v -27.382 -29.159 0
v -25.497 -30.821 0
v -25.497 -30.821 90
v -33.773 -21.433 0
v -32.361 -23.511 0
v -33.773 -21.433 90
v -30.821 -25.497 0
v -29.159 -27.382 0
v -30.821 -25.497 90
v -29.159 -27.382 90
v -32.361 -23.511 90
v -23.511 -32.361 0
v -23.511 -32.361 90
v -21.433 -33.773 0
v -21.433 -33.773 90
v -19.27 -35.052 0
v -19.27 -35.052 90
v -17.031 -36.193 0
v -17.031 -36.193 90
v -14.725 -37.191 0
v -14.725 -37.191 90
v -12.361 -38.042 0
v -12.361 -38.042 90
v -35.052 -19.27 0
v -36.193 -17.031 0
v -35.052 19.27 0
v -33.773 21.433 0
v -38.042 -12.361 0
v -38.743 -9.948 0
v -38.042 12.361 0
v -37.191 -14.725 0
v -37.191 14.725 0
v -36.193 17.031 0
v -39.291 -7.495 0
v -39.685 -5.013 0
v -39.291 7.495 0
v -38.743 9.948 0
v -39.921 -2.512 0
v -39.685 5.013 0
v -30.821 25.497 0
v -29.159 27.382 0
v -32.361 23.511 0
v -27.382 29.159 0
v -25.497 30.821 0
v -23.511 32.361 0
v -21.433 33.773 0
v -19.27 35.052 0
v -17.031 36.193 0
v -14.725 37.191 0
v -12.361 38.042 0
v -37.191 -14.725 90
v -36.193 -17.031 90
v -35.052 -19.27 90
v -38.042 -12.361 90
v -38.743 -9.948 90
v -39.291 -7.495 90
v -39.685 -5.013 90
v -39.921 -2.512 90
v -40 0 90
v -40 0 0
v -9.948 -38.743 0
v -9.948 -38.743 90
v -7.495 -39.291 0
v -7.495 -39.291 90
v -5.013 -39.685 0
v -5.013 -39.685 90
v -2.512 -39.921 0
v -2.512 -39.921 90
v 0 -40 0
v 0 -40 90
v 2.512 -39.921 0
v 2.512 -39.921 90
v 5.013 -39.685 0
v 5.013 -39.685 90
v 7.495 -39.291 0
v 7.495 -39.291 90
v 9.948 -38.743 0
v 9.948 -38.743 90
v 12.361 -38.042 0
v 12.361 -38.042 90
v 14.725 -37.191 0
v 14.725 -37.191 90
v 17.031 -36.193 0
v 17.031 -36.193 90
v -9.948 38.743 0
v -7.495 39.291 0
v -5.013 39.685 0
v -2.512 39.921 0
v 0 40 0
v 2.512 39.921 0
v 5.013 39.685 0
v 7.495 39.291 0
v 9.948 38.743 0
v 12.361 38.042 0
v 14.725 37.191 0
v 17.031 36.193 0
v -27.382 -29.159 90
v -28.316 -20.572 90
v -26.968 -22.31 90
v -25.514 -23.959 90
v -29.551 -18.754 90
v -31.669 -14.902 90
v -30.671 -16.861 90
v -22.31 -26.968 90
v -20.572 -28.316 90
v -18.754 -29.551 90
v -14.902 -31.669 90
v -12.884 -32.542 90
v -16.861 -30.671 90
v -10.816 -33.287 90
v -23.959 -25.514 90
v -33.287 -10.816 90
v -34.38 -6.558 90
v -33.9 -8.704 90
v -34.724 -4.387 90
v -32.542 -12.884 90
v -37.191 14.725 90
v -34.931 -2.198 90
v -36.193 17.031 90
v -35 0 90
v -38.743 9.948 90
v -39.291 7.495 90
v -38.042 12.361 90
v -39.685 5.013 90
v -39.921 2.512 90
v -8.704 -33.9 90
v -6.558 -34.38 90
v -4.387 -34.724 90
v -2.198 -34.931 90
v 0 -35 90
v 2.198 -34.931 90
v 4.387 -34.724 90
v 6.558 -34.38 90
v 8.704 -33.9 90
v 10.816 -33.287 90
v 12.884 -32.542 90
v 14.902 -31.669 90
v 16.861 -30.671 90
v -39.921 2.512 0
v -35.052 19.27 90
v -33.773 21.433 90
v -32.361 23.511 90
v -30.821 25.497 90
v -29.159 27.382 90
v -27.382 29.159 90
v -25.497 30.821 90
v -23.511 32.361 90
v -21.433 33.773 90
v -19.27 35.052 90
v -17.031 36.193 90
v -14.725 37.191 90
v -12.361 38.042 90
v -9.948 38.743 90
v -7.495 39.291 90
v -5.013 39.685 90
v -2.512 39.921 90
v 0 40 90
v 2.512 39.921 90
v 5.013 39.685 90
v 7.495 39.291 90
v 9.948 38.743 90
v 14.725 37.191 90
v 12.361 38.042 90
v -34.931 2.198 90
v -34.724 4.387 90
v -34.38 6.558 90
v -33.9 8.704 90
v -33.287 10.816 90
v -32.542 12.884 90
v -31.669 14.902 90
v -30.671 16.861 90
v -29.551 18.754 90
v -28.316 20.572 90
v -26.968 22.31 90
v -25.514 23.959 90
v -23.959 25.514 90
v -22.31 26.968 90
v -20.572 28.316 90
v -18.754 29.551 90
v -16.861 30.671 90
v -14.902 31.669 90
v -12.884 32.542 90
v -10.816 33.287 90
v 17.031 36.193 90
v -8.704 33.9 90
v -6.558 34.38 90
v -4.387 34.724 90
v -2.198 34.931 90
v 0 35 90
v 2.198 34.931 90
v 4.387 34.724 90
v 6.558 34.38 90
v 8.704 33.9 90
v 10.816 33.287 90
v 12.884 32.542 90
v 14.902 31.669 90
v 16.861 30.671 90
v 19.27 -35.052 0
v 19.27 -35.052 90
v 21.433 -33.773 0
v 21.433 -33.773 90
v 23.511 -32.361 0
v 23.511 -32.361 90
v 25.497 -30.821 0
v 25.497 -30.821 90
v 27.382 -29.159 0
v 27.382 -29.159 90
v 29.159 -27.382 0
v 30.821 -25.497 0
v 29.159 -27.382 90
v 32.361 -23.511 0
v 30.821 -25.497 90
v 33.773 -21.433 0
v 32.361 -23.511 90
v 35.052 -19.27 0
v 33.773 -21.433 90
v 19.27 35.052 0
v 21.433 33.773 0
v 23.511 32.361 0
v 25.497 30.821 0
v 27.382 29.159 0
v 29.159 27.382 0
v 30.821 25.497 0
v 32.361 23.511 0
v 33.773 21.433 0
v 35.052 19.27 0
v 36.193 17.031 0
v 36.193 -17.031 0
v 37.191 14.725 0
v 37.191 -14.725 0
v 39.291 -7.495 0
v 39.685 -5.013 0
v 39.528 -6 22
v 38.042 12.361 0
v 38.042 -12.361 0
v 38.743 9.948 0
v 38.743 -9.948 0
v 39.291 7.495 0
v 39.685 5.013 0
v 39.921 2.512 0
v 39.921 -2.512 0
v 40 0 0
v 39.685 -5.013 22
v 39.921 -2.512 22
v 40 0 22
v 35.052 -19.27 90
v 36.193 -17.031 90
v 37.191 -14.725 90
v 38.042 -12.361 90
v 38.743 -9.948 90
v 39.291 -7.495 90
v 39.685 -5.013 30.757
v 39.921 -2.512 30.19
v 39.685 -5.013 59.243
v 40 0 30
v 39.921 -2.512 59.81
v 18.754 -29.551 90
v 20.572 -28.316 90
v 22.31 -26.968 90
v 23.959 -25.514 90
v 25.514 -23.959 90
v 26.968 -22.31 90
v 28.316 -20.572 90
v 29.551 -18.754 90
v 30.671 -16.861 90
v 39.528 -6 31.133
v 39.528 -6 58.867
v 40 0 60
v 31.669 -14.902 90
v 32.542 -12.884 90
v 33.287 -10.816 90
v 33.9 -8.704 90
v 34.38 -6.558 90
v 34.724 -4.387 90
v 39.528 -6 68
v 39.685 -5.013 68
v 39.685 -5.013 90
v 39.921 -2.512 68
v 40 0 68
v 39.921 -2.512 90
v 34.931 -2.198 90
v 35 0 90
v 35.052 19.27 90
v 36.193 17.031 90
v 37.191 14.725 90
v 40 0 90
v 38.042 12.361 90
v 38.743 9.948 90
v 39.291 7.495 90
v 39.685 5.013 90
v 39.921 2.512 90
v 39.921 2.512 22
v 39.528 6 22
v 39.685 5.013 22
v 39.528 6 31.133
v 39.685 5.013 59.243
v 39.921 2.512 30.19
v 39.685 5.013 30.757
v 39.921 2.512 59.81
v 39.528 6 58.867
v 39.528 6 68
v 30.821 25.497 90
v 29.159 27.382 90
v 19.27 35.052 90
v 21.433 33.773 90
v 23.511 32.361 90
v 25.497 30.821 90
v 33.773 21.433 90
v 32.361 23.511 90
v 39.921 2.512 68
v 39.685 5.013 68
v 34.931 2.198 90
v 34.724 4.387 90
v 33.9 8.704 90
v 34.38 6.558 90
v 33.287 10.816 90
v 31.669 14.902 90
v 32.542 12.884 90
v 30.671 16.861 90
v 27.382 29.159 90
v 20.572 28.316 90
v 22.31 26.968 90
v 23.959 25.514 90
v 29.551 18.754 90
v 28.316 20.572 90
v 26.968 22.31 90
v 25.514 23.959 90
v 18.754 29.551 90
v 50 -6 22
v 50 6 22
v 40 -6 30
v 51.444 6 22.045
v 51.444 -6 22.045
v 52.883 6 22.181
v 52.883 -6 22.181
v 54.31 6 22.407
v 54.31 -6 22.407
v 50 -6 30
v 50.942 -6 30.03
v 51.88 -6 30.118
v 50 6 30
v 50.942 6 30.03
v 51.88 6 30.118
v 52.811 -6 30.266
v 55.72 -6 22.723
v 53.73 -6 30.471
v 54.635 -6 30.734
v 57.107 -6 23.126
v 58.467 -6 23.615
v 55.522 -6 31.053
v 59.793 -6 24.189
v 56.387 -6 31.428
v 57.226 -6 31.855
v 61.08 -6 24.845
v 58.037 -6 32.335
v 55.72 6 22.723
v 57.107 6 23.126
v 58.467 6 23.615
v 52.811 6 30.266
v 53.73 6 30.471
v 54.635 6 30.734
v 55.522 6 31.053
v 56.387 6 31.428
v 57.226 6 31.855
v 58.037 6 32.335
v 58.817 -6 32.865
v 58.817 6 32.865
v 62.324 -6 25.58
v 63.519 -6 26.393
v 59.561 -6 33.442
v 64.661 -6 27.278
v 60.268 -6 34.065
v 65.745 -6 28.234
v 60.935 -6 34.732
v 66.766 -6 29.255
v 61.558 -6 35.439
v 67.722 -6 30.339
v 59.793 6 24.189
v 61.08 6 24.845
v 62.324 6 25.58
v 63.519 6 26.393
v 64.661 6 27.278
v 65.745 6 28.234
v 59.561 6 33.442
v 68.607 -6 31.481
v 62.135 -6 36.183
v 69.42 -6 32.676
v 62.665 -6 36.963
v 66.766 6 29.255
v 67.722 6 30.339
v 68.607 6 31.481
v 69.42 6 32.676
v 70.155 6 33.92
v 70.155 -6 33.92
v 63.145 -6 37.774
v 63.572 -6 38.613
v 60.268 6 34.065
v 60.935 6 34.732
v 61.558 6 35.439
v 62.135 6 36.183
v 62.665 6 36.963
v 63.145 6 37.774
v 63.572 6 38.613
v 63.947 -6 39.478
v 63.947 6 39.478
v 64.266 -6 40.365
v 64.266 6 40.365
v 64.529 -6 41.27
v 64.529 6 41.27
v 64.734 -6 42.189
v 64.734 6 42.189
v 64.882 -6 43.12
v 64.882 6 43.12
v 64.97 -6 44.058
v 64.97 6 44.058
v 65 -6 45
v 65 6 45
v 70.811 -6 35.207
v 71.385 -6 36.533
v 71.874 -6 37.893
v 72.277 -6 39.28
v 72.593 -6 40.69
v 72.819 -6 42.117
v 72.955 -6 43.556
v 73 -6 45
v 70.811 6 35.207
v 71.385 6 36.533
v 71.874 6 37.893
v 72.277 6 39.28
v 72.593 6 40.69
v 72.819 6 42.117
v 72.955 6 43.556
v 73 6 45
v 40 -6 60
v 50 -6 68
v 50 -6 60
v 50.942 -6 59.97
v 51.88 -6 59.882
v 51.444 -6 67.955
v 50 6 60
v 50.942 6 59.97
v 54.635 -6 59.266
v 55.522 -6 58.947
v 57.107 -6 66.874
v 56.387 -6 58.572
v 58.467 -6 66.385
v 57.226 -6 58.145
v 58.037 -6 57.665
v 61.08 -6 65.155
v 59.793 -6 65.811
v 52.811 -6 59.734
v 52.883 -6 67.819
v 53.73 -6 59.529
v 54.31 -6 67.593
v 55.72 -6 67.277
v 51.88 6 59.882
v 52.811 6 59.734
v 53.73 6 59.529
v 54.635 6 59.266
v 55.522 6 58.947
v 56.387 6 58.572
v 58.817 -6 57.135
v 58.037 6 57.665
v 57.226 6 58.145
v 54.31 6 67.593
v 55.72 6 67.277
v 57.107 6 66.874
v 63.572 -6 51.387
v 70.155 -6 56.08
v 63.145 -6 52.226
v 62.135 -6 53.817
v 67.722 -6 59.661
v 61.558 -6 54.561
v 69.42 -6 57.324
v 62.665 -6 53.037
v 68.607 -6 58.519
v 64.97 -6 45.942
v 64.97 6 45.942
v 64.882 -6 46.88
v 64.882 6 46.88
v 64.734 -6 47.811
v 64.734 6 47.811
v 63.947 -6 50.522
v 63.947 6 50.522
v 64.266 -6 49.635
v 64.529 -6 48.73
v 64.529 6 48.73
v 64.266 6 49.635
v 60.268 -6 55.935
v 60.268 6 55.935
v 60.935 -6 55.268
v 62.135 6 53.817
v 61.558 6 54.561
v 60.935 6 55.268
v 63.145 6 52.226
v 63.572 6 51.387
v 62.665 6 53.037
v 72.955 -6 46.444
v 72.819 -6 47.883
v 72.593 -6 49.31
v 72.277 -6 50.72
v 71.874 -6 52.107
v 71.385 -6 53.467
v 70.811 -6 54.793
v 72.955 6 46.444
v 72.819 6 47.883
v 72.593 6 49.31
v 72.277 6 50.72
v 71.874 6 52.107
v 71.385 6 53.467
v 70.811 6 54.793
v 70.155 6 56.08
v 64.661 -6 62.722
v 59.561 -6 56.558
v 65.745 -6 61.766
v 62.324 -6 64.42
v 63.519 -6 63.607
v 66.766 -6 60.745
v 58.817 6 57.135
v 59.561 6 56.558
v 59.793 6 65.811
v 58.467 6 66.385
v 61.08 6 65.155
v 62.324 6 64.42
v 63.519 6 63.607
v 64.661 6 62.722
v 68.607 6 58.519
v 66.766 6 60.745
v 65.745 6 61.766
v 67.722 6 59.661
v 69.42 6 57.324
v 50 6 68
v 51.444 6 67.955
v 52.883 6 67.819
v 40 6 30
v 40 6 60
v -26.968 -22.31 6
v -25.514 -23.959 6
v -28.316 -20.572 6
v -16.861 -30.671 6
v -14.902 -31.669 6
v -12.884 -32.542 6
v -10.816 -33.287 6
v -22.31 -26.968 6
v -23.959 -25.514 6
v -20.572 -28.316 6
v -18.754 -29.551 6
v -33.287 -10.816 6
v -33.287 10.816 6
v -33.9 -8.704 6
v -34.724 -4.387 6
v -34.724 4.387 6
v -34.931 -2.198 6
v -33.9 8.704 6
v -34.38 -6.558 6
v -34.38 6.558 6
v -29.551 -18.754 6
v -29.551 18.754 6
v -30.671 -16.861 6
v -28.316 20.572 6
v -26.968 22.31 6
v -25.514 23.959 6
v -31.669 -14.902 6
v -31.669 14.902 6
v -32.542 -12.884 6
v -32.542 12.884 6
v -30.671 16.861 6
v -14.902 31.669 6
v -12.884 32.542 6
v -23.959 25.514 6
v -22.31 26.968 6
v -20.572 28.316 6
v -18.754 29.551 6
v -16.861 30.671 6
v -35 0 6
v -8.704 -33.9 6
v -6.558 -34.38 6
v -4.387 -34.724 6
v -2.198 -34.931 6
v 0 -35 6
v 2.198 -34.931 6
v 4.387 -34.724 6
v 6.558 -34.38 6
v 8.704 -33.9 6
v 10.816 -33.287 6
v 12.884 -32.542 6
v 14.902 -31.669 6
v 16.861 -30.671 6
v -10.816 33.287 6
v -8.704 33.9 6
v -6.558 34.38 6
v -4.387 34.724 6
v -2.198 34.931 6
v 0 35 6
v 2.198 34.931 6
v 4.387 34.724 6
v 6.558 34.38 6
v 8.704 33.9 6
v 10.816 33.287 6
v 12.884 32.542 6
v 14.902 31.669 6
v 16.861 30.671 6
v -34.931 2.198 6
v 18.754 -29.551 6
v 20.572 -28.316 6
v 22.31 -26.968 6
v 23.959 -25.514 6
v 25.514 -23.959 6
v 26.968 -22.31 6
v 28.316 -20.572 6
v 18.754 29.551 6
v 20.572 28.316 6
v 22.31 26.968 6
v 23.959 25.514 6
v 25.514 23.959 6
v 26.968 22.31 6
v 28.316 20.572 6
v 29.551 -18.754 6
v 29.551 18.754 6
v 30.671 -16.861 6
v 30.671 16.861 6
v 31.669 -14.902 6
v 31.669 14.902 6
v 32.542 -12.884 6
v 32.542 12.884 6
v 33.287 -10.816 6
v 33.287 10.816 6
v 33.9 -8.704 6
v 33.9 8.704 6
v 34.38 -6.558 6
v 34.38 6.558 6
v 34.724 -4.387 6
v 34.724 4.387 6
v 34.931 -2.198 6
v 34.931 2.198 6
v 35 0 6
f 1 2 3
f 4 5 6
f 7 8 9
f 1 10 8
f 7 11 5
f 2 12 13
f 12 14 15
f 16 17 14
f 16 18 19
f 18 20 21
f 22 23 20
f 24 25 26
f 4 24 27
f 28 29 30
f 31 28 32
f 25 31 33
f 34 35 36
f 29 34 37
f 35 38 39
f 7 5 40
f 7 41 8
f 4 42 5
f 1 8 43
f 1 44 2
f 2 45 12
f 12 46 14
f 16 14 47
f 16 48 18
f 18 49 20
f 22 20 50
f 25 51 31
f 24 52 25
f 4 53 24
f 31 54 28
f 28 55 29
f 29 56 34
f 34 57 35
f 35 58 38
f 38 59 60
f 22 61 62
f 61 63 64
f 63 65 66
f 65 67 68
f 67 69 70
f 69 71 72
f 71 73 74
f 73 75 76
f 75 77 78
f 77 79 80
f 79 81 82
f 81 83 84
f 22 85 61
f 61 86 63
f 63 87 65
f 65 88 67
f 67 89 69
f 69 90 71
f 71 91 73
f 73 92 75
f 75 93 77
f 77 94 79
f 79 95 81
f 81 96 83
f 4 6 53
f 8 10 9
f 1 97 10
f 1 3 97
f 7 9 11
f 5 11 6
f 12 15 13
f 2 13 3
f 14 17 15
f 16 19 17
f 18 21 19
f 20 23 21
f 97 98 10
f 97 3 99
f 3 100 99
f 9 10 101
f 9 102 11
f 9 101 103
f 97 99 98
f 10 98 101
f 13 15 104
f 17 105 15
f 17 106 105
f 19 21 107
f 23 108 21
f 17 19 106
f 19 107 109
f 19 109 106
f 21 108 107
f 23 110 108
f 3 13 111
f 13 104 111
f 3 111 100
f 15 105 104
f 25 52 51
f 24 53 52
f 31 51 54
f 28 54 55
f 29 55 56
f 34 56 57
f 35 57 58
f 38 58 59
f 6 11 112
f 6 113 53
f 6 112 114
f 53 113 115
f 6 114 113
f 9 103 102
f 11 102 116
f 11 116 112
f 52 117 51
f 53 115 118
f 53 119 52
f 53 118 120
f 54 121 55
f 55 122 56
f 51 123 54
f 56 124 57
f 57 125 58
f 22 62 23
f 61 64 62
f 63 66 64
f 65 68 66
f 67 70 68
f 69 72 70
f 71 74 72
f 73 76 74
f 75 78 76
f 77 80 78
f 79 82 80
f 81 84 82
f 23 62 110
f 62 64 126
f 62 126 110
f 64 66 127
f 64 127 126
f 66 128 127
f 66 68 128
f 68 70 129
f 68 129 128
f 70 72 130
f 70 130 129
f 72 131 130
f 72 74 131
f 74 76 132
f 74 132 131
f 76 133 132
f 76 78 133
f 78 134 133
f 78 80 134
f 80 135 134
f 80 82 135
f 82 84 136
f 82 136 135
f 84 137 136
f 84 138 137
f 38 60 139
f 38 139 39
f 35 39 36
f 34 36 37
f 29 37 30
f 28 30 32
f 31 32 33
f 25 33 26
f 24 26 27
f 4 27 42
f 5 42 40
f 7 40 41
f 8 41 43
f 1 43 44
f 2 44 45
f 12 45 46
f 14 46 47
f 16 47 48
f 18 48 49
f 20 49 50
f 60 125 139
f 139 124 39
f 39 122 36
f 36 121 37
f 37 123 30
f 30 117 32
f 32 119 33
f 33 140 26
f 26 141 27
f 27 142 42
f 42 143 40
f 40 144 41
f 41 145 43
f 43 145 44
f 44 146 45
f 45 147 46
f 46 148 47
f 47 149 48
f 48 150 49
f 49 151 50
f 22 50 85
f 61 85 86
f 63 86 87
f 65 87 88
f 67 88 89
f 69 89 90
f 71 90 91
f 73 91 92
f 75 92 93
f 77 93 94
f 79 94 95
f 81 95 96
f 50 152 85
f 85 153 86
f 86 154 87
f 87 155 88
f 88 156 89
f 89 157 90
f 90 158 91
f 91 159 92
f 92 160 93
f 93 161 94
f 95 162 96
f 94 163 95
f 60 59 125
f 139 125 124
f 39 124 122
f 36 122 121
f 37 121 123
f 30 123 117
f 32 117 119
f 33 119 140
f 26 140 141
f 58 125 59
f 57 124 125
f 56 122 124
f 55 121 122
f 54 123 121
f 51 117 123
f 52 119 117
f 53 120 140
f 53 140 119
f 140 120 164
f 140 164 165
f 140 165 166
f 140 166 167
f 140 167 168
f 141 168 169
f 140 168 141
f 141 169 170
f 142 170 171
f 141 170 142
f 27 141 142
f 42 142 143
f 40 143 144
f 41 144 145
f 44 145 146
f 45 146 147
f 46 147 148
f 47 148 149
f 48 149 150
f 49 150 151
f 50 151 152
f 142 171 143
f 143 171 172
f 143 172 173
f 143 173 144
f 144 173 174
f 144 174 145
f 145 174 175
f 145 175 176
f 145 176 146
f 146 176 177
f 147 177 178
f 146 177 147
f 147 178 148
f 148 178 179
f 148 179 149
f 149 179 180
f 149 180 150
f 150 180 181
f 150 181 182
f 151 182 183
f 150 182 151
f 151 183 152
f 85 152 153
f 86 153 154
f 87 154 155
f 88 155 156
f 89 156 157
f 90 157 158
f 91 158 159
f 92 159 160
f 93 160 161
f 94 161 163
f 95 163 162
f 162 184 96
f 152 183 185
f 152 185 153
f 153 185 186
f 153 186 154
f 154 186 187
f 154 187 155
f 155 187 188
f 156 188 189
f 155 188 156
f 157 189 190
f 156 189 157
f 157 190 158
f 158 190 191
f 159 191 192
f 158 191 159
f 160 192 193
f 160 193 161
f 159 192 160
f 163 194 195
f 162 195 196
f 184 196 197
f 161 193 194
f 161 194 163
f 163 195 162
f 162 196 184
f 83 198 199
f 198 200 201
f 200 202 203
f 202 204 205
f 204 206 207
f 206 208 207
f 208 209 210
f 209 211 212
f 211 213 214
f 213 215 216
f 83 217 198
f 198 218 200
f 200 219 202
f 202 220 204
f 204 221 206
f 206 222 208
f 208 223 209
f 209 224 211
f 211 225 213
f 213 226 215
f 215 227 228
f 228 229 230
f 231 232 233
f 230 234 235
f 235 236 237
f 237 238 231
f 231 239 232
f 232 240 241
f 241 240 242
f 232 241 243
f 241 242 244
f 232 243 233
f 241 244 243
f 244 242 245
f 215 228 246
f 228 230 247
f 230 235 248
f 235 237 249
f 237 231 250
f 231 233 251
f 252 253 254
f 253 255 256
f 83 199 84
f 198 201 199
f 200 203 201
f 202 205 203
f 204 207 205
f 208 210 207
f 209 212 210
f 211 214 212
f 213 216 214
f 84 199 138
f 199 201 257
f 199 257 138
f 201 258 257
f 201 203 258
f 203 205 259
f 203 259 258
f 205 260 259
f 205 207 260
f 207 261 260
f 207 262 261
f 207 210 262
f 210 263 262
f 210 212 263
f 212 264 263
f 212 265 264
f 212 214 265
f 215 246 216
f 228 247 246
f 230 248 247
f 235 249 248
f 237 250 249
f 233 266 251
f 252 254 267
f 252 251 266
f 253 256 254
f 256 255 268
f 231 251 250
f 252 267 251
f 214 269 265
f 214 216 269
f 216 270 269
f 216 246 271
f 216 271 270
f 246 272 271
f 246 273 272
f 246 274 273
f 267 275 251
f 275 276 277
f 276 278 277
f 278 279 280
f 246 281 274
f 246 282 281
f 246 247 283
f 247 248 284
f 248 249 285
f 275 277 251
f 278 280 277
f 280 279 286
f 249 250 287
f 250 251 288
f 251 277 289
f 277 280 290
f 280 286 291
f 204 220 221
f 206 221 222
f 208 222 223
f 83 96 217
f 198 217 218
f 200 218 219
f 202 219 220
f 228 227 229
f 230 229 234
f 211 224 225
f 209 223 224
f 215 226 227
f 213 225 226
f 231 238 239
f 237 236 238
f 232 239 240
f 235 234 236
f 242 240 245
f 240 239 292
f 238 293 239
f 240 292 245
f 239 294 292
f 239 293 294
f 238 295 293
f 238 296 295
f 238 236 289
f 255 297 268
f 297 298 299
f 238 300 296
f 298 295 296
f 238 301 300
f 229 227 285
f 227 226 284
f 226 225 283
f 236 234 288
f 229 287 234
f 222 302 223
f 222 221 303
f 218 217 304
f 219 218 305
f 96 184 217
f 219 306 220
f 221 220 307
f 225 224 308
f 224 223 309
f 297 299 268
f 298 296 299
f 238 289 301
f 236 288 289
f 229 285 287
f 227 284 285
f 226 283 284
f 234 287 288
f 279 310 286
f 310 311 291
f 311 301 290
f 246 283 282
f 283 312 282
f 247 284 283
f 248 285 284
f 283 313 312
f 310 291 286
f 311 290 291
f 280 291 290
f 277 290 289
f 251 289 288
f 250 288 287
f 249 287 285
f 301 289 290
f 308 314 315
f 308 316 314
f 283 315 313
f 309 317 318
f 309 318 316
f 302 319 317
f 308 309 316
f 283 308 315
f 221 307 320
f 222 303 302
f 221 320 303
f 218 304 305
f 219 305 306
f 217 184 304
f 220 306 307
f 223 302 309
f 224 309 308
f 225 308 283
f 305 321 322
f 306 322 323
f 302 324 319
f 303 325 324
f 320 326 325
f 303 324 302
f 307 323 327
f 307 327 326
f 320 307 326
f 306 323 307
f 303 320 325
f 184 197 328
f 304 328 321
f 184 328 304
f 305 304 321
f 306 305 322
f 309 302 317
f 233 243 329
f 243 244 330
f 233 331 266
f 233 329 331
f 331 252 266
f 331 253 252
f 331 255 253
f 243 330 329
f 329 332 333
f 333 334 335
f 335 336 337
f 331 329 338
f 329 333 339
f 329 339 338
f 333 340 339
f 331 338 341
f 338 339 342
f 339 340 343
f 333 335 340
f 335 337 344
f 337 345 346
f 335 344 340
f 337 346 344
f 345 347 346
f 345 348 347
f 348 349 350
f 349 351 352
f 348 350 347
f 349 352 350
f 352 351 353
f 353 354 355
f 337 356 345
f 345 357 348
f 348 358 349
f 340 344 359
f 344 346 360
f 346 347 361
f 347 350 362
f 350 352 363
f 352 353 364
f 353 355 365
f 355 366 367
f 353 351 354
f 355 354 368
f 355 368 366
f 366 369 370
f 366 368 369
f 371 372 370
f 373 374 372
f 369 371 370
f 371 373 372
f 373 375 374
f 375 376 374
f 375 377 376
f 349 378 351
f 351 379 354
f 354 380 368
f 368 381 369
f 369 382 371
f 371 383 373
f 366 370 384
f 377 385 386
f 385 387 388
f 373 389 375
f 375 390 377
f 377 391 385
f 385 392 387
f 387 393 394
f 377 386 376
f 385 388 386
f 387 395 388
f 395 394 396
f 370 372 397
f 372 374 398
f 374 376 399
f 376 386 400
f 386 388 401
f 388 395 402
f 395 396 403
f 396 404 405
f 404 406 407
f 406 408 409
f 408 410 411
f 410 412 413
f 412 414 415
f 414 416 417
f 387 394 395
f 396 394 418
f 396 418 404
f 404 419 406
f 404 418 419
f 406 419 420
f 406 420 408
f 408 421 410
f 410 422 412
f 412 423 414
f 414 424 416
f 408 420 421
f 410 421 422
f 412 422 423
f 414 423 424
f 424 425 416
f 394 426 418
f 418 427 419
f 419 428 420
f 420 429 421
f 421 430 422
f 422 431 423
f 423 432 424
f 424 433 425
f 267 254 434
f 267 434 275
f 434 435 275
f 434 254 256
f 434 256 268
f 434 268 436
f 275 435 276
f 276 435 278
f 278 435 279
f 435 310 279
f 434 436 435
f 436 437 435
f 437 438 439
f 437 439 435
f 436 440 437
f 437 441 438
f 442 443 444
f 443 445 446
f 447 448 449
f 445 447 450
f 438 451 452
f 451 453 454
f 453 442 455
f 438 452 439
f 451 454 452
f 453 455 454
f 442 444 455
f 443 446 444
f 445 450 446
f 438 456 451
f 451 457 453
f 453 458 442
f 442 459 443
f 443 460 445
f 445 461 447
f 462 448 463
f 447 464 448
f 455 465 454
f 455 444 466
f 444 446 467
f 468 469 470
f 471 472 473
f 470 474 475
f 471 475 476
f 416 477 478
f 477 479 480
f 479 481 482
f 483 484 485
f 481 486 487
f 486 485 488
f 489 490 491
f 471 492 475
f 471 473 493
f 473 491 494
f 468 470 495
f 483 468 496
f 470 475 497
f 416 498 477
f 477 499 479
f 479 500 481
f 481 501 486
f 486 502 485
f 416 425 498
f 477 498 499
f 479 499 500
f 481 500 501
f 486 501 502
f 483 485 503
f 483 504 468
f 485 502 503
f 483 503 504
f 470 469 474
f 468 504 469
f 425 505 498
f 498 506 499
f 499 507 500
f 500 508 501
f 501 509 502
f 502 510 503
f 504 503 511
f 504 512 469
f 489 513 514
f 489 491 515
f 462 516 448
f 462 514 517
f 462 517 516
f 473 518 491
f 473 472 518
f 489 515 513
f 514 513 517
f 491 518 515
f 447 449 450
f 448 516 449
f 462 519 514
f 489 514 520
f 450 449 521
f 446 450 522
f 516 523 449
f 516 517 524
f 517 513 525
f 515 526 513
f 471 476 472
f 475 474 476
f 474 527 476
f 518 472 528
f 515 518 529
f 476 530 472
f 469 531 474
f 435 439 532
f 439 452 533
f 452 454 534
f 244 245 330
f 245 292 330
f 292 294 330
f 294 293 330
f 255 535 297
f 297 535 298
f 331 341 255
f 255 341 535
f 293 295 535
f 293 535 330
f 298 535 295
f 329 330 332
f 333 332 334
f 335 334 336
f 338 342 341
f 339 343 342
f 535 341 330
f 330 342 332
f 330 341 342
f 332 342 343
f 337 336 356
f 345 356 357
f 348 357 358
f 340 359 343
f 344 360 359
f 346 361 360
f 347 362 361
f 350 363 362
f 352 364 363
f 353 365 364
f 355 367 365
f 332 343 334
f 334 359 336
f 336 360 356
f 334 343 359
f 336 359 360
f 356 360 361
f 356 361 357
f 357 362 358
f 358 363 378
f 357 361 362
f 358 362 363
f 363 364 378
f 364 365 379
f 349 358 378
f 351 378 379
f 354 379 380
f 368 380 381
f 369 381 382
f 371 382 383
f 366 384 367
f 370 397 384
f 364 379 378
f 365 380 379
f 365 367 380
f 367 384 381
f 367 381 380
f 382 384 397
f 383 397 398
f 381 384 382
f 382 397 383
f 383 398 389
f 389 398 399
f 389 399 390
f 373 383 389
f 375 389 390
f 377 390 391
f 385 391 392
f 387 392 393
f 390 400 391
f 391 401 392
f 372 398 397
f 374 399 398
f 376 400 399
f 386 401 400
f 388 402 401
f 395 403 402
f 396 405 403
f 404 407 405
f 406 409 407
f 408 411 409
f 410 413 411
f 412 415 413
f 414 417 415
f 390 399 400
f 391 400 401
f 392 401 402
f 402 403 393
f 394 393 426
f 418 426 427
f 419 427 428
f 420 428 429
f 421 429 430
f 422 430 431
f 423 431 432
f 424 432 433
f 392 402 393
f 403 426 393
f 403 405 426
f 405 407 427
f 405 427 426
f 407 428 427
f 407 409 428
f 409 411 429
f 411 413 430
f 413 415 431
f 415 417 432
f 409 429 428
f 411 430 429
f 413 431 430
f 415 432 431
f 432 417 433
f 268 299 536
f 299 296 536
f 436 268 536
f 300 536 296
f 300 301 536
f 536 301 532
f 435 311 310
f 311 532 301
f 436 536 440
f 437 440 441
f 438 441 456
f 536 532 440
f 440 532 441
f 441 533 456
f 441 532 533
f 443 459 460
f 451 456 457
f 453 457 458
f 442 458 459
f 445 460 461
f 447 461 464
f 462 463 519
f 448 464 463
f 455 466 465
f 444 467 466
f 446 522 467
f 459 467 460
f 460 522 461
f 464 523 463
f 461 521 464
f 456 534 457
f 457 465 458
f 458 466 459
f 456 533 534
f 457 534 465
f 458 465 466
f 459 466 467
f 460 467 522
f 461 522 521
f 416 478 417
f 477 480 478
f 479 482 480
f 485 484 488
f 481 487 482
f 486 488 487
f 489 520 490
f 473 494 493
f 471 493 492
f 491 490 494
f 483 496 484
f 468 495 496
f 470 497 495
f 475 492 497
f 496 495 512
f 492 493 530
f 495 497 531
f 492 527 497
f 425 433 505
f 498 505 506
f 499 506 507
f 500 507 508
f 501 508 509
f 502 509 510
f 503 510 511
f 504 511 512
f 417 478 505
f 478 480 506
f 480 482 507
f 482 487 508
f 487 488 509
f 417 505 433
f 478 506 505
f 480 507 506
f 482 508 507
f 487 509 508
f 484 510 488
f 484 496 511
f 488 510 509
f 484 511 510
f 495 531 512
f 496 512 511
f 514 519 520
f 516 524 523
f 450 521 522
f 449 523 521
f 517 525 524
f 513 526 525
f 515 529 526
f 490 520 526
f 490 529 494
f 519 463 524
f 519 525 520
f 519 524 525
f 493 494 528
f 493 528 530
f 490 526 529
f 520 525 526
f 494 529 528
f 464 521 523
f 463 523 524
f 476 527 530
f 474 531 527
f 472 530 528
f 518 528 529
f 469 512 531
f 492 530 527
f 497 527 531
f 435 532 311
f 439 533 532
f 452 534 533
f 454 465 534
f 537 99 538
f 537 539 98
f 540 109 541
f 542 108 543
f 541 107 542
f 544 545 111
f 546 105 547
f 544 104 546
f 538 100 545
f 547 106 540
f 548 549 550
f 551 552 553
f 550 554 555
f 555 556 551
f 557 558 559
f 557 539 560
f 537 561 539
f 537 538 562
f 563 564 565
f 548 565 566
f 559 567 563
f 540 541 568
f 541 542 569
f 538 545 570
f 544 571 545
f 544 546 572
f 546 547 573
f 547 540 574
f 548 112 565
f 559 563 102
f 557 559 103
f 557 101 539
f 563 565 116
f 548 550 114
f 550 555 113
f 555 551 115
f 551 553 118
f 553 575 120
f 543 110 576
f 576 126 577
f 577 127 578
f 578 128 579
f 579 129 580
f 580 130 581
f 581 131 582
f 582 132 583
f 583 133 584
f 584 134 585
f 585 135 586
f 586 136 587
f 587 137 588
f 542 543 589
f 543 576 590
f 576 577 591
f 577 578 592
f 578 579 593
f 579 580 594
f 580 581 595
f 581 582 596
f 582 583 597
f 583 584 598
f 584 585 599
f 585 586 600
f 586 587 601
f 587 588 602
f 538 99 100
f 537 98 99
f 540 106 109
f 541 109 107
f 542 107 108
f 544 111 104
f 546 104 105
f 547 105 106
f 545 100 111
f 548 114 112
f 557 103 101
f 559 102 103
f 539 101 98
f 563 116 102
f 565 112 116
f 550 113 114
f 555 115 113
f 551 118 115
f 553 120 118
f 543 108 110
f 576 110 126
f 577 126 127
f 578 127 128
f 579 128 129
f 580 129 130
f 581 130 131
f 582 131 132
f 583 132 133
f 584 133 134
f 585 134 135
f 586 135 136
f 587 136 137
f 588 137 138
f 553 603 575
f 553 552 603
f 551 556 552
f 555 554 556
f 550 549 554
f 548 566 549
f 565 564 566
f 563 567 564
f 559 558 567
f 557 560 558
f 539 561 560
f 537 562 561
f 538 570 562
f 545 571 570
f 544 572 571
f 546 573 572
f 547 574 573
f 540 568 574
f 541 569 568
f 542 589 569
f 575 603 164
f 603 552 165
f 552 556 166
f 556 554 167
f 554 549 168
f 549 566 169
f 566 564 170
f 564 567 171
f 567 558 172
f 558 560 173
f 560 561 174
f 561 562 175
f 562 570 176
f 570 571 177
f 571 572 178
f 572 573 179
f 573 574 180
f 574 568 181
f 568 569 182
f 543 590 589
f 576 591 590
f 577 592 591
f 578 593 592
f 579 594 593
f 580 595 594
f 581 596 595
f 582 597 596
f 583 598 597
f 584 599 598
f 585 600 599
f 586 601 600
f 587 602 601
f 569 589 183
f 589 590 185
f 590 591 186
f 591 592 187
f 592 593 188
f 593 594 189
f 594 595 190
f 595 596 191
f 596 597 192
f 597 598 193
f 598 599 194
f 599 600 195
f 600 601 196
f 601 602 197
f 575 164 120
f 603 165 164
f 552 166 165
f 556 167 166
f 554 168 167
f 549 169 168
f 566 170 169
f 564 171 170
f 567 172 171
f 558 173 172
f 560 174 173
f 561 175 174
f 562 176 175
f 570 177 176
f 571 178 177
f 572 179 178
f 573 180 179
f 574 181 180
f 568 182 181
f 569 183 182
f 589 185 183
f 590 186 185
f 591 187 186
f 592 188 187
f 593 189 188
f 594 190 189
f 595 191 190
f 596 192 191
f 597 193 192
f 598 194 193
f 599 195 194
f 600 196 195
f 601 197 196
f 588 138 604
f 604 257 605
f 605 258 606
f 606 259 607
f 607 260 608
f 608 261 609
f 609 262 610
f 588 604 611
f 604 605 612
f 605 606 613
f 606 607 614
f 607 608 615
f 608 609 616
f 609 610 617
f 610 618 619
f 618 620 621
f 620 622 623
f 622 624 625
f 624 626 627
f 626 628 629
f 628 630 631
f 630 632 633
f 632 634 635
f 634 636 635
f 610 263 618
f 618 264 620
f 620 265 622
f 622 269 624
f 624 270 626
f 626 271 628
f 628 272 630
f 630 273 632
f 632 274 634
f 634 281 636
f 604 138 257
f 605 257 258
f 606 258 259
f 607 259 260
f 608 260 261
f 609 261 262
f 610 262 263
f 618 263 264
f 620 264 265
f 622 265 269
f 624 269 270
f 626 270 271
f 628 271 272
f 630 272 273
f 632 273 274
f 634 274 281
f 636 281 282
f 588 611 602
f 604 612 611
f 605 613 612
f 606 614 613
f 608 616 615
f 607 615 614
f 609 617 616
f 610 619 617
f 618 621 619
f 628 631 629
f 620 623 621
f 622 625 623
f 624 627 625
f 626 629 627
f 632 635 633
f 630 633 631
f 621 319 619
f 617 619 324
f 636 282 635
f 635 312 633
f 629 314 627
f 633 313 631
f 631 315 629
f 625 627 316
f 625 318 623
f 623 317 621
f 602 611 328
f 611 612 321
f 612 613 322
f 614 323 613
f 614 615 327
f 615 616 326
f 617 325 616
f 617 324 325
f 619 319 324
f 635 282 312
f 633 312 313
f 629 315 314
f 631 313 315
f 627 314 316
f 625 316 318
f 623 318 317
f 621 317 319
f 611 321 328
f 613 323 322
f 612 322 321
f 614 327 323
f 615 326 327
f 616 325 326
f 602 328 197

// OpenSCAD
$fn = 100;

// マグカップ本体と取手の結合
difference() {
    union() {
        // 本体外側
        cylinder(h = 90, r = 40);

        // 取手 (+X軸方向に配置)
        translate([0, 0, 45])
        rotate([90, 0, 0])
        linear_extrude(height = 12, center = true)
        difference() {
            // 取手 外形 (本体へ確実に食い込ませるため X=36 から開始)
            hull() {
                translate([36, -23]) square([14, 46]);
                translate([50, 0]) circle(r = 23);
            }
            // 取手 内側の空間 (高さ 30mm × 幅 25mm: X=40〜65, Z=-15〜15)
            hull() {
                translate([40, -15]) square([10, 30]);
                translate([50, 0]) circle(r = 15);
            }
        }
    }

    // 内側の中空部 (底の厚み 6mm、内径 70mm)
    translate([0, 0, 6])
        cylinder(h = 90 - 6 + 1, r = 35);
}
